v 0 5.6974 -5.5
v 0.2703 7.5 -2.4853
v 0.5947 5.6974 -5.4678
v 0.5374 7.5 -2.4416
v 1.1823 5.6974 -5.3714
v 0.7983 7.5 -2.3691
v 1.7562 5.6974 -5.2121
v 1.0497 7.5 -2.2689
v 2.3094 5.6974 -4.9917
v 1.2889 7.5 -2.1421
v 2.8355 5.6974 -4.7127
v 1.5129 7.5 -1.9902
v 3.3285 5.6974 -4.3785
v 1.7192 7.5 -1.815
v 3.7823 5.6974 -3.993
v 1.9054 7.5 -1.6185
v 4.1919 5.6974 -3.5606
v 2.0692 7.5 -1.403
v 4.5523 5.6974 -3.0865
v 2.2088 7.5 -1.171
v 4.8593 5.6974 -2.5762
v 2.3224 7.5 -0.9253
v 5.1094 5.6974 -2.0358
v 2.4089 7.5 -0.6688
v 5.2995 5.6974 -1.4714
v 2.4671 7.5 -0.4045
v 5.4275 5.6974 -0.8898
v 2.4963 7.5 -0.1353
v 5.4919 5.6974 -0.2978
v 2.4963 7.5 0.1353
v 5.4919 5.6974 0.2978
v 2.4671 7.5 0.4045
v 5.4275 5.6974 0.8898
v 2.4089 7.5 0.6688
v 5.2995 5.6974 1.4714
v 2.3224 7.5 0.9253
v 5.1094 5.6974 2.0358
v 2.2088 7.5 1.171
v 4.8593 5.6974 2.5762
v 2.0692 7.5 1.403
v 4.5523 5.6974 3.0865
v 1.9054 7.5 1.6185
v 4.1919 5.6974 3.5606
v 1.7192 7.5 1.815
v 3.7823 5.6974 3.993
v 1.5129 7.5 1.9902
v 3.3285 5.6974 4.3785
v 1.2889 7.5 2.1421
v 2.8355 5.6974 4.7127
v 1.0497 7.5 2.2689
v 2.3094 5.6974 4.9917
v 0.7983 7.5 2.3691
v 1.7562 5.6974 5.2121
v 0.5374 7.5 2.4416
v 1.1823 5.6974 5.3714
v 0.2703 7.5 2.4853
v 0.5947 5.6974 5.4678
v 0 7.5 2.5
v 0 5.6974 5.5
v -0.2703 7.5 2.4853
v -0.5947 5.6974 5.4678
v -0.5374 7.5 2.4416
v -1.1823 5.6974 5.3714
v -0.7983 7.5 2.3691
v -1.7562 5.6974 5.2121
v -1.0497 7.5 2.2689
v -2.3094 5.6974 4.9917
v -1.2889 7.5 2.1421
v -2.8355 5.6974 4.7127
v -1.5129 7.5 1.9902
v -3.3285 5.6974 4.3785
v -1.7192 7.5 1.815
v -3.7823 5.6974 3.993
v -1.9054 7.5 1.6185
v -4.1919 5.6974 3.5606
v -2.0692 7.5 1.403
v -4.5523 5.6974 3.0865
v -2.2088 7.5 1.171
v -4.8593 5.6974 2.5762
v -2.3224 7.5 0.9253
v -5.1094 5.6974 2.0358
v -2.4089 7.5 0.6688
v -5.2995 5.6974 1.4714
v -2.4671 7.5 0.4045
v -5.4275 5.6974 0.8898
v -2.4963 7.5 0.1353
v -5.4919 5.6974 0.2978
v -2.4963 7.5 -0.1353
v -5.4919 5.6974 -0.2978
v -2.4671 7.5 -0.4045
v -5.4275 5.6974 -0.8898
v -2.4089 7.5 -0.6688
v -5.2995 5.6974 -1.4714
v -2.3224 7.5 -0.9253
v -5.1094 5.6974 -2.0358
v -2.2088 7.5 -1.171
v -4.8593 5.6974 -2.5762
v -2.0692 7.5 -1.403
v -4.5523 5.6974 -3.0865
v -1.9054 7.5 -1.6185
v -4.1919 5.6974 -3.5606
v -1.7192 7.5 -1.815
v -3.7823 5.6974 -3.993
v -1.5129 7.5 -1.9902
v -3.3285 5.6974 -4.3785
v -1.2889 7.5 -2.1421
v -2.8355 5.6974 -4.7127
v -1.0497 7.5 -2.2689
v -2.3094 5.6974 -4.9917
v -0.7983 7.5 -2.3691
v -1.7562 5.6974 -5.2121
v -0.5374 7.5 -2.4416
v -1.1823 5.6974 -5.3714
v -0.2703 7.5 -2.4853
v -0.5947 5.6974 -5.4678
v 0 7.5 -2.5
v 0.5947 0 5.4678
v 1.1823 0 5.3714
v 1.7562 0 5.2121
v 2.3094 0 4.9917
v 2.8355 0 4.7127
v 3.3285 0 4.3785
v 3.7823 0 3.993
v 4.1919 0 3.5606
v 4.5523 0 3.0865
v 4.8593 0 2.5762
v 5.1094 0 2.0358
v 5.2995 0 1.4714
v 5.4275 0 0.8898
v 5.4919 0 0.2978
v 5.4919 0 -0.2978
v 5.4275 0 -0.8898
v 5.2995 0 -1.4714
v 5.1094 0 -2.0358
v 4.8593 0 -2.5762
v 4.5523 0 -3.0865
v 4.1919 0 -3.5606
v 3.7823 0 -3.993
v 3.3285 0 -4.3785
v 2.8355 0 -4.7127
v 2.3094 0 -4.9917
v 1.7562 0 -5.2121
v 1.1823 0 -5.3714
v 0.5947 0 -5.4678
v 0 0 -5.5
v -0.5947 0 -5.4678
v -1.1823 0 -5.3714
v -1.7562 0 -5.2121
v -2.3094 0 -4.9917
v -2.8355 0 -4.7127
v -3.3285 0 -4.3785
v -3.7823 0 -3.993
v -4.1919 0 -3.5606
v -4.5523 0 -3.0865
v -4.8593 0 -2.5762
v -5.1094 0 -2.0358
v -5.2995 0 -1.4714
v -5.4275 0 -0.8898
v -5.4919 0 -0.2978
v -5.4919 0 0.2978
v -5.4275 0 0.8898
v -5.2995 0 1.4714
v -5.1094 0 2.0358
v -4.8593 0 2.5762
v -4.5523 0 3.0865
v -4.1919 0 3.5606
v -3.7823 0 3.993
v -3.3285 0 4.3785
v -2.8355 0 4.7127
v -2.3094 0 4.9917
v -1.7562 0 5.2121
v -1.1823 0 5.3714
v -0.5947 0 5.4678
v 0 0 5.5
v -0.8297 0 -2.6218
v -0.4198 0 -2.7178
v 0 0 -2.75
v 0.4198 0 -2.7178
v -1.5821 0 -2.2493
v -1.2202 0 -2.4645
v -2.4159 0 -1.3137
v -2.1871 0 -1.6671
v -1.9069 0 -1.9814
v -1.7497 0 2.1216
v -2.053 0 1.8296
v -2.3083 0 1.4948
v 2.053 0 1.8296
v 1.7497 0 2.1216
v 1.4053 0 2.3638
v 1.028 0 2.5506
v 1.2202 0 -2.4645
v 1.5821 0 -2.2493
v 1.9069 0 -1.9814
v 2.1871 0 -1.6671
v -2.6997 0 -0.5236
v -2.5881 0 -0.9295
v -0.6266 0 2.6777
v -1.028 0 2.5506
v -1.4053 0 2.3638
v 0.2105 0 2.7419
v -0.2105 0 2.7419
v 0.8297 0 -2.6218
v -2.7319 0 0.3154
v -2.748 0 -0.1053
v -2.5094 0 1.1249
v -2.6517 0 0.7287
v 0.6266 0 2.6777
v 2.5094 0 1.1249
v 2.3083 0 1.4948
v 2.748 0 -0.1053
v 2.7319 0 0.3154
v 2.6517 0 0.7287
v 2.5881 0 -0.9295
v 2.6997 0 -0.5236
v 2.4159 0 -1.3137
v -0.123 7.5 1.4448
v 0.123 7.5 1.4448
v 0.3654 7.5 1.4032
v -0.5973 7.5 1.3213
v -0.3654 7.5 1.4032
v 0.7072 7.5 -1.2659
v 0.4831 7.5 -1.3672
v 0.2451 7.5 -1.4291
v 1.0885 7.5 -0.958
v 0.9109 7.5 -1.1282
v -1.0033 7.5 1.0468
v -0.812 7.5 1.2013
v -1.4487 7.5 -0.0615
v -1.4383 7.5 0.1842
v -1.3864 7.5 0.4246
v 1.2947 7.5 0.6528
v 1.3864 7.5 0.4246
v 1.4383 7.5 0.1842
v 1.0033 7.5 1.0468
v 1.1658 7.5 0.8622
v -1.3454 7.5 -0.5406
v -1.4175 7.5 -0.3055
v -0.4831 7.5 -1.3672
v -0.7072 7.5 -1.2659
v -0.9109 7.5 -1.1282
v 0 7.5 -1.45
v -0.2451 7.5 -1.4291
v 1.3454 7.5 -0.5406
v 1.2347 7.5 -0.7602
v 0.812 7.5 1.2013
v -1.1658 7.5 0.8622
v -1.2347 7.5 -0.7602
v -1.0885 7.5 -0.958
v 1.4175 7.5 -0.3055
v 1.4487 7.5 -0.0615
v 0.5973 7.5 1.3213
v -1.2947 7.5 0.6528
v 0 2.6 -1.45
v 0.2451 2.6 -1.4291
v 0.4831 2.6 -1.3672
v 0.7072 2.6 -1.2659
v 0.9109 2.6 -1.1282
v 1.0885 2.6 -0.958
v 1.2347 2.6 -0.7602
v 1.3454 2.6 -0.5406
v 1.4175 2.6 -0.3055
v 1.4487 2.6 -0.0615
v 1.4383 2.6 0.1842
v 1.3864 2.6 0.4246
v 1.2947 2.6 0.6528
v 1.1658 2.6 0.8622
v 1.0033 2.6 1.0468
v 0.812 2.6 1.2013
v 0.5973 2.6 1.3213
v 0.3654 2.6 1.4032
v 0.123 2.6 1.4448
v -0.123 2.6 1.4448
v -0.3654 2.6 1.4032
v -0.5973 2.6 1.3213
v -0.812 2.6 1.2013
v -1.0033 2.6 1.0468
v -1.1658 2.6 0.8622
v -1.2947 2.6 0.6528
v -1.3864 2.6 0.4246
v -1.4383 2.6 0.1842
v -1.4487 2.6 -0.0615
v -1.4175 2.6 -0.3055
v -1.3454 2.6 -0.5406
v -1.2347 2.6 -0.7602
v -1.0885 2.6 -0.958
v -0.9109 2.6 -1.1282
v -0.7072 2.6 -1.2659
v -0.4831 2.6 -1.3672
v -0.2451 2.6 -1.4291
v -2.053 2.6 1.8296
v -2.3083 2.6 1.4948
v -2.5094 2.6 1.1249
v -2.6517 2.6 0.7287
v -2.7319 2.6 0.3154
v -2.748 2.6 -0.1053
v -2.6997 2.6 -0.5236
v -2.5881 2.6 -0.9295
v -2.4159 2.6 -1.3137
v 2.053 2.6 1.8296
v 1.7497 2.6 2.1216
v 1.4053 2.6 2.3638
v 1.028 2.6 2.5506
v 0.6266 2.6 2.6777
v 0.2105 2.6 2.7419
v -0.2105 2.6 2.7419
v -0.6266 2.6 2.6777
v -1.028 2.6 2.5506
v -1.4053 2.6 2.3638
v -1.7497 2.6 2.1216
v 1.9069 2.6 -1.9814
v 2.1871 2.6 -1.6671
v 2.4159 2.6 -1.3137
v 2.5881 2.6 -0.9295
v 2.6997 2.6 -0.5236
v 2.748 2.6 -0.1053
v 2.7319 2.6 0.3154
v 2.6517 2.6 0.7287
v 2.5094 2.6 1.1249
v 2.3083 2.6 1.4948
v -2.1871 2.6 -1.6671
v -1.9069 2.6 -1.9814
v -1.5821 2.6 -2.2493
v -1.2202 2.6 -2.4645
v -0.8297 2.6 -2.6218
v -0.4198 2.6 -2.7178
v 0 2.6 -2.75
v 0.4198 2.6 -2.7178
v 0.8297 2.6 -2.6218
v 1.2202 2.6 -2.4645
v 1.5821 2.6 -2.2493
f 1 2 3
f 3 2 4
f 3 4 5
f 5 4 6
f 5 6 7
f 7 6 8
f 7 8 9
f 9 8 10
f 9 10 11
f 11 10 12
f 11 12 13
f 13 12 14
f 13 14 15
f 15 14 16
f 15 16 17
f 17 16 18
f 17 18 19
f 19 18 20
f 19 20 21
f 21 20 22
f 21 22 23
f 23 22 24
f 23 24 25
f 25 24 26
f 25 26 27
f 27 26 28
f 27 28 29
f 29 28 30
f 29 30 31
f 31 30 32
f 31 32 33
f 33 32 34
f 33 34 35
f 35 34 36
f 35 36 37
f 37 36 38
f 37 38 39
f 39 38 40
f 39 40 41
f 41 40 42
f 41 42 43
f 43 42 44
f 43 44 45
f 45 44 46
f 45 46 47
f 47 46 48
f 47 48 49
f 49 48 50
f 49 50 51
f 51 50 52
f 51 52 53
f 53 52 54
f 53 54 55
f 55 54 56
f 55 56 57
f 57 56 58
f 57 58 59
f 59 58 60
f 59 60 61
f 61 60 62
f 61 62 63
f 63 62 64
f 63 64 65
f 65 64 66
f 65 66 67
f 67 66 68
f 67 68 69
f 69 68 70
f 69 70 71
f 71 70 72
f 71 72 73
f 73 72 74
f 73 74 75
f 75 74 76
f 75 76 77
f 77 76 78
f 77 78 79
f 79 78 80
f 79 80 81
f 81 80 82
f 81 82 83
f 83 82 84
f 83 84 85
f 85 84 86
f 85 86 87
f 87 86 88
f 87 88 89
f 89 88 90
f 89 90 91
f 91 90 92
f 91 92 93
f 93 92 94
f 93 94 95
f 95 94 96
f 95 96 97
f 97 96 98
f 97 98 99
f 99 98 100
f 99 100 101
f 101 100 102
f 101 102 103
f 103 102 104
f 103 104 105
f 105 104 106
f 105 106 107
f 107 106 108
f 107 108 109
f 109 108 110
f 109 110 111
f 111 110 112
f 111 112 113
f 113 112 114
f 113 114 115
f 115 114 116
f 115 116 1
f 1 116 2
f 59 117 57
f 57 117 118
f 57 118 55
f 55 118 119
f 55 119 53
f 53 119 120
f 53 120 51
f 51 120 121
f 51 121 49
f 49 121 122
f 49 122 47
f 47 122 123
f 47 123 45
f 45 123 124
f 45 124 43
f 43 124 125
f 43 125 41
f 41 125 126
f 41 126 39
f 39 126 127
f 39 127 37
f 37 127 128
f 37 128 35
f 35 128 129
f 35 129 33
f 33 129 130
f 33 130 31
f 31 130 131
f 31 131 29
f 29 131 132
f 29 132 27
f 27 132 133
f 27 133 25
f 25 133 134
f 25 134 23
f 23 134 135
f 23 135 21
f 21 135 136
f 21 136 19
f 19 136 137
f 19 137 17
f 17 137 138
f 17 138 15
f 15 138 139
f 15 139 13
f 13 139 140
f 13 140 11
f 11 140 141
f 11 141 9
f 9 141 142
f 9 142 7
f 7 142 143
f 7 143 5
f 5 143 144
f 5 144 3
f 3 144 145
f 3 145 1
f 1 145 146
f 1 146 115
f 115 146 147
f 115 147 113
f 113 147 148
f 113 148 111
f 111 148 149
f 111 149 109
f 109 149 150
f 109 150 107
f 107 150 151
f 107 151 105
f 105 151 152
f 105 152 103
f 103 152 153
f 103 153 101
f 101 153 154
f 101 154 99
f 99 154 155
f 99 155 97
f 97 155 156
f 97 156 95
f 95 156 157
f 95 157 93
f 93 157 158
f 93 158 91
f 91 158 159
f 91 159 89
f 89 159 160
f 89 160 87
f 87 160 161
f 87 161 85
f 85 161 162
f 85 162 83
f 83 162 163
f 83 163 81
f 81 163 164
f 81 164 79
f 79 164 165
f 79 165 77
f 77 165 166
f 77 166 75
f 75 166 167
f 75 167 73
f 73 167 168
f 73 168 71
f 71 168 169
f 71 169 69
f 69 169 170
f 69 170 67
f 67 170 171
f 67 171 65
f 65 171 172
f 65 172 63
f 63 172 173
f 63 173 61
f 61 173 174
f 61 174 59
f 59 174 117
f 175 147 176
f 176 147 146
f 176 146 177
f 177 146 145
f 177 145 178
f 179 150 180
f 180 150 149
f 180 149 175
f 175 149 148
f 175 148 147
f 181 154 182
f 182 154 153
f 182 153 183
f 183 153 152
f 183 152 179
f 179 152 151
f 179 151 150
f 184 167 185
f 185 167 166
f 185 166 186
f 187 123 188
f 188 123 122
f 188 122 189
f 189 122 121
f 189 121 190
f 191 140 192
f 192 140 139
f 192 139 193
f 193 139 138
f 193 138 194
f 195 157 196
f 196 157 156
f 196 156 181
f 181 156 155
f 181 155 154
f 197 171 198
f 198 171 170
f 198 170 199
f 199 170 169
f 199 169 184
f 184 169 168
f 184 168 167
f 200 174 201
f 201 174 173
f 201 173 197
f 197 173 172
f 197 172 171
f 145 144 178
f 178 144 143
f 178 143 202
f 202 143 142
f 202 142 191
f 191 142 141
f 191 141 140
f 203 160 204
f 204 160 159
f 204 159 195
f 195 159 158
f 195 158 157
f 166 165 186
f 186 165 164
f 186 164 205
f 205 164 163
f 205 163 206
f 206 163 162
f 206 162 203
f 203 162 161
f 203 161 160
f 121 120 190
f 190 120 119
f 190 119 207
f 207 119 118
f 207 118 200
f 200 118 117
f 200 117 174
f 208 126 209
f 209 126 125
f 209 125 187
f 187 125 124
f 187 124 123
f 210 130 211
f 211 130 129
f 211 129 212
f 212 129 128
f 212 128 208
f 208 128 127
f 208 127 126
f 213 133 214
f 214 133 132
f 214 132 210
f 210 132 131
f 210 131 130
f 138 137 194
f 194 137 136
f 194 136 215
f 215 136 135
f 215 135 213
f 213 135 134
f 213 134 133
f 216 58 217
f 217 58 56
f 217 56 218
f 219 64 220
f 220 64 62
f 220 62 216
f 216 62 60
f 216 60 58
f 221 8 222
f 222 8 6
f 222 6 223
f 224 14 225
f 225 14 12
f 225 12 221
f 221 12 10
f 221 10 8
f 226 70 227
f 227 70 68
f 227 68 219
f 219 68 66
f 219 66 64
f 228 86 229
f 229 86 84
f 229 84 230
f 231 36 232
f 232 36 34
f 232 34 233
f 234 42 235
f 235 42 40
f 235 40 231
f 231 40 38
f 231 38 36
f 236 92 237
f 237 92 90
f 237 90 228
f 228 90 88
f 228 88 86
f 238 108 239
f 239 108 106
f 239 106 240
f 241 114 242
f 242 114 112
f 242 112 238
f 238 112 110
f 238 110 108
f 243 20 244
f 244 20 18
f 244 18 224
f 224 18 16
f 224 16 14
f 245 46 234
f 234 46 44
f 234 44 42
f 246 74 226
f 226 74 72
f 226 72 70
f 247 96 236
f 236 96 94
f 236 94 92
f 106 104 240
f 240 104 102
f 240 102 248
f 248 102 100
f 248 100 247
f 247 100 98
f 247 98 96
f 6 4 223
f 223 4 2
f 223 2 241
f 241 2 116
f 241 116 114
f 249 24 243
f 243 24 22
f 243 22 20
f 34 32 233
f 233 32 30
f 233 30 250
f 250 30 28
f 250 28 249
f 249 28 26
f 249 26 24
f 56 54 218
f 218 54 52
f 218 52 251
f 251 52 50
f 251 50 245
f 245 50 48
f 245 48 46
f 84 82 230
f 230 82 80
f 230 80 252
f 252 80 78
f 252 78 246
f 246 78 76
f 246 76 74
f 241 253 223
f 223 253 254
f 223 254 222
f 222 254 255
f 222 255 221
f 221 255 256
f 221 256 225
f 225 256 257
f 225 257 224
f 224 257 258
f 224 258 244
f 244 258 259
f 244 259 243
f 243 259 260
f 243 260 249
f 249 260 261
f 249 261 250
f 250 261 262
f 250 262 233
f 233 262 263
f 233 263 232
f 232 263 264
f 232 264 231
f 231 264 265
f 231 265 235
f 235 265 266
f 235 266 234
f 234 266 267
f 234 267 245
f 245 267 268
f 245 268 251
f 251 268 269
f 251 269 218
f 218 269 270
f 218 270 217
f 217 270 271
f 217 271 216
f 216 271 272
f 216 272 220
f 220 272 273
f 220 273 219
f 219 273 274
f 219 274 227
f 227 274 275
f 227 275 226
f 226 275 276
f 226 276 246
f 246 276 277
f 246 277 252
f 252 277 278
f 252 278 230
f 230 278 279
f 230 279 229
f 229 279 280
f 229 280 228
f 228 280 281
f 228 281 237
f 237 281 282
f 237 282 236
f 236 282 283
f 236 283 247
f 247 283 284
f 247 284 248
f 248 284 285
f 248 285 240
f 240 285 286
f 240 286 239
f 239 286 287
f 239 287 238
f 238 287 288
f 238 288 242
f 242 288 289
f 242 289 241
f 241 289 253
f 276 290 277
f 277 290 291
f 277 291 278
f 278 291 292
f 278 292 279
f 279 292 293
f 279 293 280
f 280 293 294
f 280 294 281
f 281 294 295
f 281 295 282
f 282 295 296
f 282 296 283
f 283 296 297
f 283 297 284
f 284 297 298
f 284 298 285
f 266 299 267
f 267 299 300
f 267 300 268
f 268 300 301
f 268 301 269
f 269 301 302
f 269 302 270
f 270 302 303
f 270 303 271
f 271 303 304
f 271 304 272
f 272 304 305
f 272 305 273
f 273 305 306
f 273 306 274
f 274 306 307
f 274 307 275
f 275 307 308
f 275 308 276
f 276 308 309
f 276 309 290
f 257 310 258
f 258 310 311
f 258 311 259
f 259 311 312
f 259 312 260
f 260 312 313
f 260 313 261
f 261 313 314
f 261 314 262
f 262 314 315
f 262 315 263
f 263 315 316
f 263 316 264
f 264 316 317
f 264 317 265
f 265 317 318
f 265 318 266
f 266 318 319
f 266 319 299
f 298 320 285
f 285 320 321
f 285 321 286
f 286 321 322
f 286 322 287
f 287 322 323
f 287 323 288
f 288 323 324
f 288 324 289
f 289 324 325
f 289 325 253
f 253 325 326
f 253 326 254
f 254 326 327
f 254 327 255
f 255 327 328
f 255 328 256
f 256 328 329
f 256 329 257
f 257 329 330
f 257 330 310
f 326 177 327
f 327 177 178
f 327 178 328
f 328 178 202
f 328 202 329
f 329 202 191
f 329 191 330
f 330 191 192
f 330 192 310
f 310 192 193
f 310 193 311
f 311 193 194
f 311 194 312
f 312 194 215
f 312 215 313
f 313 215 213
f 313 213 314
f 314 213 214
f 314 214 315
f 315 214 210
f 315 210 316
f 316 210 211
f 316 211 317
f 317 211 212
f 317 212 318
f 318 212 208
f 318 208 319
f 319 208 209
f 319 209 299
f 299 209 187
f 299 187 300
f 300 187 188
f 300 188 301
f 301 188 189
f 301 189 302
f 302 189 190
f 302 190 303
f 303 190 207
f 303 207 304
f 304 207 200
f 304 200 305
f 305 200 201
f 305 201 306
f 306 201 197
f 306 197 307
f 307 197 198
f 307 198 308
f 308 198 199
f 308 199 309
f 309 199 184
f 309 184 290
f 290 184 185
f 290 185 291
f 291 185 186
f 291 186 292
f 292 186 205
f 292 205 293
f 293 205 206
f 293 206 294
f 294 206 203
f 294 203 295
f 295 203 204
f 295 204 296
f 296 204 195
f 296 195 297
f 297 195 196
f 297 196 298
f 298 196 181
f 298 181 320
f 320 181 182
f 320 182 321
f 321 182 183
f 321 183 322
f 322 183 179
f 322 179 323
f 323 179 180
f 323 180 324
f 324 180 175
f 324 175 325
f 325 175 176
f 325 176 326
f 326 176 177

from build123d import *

# Parameters (mm, degrees)
CBORE_FOR_M2_5_SHCS1_D           = 2.9
CBORE_FOR_M2_5_SHCS1_CBORE_D     = 5.5
CBORE_FOR_M2_5_SHCS1_CBORE_DEPTH = 2.6


with BuildPart() as part:
    # Sketch1 → Revolve1 (revolve)
    with BuildSketch(Plane(origin=(0, 0, 0), x_dir=(0, 0, -1), z_dir=(1, 0, 0))):
        Polygon((-5.5, 5.697418143), (-5.5, 0), (0, 0), (0, 7.5), (-2.5, 7.5), align=None)
    revolve(axis=Axis((0, 7.5, 0), (0, -1, 0)))

    # CBORE for M2.5 SHCS1 (through all)
    with Locations(Plane(origin=(0, 0, 0), x_dir=(-1, 0, 0), z_dir=(0, -1, 0))):
        with Locations((0, 0)):
            CounterBoreHole(CBORE_FOR_M2_5_SHCS1_D / 2, CBORE_FOR_M2_5_SHCS1_CBORE_D / 2, CBORE_FOR_M2_5_SHCS1_CBORE_DEPTH)


solid = part.part
